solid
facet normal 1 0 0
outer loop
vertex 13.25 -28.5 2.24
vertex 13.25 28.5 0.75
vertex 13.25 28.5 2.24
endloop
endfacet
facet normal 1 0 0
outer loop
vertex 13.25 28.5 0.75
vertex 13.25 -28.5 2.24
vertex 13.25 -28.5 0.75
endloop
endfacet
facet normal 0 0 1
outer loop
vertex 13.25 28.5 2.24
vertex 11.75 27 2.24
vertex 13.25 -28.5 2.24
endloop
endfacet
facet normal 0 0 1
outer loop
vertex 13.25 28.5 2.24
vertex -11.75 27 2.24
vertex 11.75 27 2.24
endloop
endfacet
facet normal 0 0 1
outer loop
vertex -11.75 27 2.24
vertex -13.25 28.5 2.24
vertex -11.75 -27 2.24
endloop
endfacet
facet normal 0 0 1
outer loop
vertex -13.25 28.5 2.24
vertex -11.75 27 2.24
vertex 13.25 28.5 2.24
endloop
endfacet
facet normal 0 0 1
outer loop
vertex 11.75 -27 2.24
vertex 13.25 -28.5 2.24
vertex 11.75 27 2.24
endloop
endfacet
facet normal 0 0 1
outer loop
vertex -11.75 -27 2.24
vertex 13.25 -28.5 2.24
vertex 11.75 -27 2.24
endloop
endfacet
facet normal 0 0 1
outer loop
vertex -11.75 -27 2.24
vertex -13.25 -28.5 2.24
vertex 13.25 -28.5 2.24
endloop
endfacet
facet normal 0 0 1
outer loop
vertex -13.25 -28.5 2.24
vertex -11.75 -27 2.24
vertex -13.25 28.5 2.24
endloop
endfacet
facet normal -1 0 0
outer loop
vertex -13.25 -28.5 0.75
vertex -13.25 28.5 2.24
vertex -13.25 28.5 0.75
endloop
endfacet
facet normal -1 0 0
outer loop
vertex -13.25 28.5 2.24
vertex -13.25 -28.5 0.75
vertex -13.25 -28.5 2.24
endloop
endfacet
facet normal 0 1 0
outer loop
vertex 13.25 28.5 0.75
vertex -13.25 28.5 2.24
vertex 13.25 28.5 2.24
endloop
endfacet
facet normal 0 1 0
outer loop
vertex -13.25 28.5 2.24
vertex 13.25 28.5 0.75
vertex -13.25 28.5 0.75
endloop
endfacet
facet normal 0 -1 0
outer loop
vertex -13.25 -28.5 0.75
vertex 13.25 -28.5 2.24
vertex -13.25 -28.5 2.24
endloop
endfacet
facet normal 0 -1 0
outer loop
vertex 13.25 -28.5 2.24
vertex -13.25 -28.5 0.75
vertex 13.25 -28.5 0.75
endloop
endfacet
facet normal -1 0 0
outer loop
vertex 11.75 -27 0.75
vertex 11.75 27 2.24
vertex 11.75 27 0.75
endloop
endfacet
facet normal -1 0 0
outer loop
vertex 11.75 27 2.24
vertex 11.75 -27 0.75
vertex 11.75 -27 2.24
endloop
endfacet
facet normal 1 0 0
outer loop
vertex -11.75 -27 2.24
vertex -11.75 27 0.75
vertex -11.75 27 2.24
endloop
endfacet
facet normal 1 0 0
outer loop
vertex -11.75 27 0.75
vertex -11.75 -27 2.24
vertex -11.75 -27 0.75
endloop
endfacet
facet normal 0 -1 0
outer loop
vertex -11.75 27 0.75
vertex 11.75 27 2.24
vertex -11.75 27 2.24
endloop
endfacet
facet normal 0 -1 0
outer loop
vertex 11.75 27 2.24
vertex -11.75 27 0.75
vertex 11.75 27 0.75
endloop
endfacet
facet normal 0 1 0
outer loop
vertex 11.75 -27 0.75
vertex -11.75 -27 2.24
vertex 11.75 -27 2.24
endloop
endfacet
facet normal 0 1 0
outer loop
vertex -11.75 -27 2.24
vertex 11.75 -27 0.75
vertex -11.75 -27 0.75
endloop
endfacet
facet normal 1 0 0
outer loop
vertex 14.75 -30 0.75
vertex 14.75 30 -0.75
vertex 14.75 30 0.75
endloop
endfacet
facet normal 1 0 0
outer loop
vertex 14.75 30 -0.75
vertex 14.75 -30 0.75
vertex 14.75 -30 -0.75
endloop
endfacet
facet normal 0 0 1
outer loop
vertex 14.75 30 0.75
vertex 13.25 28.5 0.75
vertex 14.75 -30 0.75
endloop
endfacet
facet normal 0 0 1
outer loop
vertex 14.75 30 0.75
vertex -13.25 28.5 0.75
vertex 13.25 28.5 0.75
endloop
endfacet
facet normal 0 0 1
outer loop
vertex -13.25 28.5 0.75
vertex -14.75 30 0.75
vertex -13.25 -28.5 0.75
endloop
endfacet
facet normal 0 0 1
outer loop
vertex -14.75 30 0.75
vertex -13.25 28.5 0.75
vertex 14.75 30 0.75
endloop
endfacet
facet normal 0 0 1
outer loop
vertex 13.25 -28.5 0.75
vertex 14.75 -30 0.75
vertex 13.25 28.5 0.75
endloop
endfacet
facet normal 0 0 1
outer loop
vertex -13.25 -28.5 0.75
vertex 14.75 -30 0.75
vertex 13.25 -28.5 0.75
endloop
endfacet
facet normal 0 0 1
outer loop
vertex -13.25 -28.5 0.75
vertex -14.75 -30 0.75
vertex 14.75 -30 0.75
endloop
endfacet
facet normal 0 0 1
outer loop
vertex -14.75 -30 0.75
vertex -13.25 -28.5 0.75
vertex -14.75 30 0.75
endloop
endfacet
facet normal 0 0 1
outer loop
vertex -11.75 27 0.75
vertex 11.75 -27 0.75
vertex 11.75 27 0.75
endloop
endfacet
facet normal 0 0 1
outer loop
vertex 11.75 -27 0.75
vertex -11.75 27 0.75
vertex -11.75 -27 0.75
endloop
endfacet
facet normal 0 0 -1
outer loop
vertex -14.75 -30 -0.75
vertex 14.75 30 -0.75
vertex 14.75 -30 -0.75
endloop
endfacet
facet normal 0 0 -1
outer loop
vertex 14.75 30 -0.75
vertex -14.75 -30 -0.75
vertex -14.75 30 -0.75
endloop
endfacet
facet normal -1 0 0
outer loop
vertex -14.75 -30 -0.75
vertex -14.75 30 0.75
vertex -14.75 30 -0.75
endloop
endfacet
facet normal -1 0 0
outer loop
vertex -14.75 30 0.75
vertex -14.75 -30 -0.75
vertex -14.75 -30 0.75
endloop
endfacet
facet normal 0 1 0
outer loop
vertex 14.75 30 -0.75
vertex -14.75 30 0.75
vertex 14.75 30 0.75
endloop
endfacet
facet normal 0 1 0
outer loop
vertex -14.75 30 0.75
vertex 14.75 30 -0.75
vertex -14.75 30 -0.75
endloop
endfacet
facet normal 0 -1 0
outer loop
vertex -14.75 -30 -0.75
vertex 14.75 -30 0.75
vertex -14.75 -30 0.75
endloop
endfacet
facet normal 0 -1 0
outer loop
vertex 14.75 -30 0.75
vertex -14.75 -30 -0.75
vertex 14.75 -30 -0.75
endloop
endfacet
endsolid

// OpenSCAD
// file: config.scad
$fa = 1;
$fs = 0.4;

// ESP PCB dimensions (with margins)
esp_pcb_w = 26.5;
esp_pcb_l = 34.5;
esp_pcb_h = 1.0;

// SCD PCB dimensions (with margins)
scd_pcb_w = 13.5;
scd_pcb_l = 22.5;
scd_pcb_h = 1.7;

// ESP PCB foot height
foot_h = 2.5;
// ESP PCB surface height
surface_h = foot_h + esp_pcb_h;
// Component height above ESP PCB
component_h = 20;

// SCD PCB rail length
scd_rail_l = scd_pcb_l*0.75;

// Thickness of the sides
side_t = 1.5;
// Wall height without top/bottom sides
wall_h = surface_h + component_h;

// USB hole dimensions (with margins)
usb_hole_w = 9;
usb_hole_h = 4;

// Rear gap for removing the lid
gap_w = 10;
gap_h = 2;

// Total case dimensions
total_w = esp_pcb_w + side_t*2;
total_l = esp_pcb_l + scd_pcb_l + side_t*2;
// main file
include <config.scad>

 // Top Side
cube([total_w, total_l, side_t], center=true);

// Rim
translate([0, 0, side_t - 0.01])
    difference() {
        cube([total_w - side_t*2, total_l - side_t*2, side_t], center=true);
        cube([total_w - side_t*4, total_l - side_t*4, side_t*2], center=true);
    }
